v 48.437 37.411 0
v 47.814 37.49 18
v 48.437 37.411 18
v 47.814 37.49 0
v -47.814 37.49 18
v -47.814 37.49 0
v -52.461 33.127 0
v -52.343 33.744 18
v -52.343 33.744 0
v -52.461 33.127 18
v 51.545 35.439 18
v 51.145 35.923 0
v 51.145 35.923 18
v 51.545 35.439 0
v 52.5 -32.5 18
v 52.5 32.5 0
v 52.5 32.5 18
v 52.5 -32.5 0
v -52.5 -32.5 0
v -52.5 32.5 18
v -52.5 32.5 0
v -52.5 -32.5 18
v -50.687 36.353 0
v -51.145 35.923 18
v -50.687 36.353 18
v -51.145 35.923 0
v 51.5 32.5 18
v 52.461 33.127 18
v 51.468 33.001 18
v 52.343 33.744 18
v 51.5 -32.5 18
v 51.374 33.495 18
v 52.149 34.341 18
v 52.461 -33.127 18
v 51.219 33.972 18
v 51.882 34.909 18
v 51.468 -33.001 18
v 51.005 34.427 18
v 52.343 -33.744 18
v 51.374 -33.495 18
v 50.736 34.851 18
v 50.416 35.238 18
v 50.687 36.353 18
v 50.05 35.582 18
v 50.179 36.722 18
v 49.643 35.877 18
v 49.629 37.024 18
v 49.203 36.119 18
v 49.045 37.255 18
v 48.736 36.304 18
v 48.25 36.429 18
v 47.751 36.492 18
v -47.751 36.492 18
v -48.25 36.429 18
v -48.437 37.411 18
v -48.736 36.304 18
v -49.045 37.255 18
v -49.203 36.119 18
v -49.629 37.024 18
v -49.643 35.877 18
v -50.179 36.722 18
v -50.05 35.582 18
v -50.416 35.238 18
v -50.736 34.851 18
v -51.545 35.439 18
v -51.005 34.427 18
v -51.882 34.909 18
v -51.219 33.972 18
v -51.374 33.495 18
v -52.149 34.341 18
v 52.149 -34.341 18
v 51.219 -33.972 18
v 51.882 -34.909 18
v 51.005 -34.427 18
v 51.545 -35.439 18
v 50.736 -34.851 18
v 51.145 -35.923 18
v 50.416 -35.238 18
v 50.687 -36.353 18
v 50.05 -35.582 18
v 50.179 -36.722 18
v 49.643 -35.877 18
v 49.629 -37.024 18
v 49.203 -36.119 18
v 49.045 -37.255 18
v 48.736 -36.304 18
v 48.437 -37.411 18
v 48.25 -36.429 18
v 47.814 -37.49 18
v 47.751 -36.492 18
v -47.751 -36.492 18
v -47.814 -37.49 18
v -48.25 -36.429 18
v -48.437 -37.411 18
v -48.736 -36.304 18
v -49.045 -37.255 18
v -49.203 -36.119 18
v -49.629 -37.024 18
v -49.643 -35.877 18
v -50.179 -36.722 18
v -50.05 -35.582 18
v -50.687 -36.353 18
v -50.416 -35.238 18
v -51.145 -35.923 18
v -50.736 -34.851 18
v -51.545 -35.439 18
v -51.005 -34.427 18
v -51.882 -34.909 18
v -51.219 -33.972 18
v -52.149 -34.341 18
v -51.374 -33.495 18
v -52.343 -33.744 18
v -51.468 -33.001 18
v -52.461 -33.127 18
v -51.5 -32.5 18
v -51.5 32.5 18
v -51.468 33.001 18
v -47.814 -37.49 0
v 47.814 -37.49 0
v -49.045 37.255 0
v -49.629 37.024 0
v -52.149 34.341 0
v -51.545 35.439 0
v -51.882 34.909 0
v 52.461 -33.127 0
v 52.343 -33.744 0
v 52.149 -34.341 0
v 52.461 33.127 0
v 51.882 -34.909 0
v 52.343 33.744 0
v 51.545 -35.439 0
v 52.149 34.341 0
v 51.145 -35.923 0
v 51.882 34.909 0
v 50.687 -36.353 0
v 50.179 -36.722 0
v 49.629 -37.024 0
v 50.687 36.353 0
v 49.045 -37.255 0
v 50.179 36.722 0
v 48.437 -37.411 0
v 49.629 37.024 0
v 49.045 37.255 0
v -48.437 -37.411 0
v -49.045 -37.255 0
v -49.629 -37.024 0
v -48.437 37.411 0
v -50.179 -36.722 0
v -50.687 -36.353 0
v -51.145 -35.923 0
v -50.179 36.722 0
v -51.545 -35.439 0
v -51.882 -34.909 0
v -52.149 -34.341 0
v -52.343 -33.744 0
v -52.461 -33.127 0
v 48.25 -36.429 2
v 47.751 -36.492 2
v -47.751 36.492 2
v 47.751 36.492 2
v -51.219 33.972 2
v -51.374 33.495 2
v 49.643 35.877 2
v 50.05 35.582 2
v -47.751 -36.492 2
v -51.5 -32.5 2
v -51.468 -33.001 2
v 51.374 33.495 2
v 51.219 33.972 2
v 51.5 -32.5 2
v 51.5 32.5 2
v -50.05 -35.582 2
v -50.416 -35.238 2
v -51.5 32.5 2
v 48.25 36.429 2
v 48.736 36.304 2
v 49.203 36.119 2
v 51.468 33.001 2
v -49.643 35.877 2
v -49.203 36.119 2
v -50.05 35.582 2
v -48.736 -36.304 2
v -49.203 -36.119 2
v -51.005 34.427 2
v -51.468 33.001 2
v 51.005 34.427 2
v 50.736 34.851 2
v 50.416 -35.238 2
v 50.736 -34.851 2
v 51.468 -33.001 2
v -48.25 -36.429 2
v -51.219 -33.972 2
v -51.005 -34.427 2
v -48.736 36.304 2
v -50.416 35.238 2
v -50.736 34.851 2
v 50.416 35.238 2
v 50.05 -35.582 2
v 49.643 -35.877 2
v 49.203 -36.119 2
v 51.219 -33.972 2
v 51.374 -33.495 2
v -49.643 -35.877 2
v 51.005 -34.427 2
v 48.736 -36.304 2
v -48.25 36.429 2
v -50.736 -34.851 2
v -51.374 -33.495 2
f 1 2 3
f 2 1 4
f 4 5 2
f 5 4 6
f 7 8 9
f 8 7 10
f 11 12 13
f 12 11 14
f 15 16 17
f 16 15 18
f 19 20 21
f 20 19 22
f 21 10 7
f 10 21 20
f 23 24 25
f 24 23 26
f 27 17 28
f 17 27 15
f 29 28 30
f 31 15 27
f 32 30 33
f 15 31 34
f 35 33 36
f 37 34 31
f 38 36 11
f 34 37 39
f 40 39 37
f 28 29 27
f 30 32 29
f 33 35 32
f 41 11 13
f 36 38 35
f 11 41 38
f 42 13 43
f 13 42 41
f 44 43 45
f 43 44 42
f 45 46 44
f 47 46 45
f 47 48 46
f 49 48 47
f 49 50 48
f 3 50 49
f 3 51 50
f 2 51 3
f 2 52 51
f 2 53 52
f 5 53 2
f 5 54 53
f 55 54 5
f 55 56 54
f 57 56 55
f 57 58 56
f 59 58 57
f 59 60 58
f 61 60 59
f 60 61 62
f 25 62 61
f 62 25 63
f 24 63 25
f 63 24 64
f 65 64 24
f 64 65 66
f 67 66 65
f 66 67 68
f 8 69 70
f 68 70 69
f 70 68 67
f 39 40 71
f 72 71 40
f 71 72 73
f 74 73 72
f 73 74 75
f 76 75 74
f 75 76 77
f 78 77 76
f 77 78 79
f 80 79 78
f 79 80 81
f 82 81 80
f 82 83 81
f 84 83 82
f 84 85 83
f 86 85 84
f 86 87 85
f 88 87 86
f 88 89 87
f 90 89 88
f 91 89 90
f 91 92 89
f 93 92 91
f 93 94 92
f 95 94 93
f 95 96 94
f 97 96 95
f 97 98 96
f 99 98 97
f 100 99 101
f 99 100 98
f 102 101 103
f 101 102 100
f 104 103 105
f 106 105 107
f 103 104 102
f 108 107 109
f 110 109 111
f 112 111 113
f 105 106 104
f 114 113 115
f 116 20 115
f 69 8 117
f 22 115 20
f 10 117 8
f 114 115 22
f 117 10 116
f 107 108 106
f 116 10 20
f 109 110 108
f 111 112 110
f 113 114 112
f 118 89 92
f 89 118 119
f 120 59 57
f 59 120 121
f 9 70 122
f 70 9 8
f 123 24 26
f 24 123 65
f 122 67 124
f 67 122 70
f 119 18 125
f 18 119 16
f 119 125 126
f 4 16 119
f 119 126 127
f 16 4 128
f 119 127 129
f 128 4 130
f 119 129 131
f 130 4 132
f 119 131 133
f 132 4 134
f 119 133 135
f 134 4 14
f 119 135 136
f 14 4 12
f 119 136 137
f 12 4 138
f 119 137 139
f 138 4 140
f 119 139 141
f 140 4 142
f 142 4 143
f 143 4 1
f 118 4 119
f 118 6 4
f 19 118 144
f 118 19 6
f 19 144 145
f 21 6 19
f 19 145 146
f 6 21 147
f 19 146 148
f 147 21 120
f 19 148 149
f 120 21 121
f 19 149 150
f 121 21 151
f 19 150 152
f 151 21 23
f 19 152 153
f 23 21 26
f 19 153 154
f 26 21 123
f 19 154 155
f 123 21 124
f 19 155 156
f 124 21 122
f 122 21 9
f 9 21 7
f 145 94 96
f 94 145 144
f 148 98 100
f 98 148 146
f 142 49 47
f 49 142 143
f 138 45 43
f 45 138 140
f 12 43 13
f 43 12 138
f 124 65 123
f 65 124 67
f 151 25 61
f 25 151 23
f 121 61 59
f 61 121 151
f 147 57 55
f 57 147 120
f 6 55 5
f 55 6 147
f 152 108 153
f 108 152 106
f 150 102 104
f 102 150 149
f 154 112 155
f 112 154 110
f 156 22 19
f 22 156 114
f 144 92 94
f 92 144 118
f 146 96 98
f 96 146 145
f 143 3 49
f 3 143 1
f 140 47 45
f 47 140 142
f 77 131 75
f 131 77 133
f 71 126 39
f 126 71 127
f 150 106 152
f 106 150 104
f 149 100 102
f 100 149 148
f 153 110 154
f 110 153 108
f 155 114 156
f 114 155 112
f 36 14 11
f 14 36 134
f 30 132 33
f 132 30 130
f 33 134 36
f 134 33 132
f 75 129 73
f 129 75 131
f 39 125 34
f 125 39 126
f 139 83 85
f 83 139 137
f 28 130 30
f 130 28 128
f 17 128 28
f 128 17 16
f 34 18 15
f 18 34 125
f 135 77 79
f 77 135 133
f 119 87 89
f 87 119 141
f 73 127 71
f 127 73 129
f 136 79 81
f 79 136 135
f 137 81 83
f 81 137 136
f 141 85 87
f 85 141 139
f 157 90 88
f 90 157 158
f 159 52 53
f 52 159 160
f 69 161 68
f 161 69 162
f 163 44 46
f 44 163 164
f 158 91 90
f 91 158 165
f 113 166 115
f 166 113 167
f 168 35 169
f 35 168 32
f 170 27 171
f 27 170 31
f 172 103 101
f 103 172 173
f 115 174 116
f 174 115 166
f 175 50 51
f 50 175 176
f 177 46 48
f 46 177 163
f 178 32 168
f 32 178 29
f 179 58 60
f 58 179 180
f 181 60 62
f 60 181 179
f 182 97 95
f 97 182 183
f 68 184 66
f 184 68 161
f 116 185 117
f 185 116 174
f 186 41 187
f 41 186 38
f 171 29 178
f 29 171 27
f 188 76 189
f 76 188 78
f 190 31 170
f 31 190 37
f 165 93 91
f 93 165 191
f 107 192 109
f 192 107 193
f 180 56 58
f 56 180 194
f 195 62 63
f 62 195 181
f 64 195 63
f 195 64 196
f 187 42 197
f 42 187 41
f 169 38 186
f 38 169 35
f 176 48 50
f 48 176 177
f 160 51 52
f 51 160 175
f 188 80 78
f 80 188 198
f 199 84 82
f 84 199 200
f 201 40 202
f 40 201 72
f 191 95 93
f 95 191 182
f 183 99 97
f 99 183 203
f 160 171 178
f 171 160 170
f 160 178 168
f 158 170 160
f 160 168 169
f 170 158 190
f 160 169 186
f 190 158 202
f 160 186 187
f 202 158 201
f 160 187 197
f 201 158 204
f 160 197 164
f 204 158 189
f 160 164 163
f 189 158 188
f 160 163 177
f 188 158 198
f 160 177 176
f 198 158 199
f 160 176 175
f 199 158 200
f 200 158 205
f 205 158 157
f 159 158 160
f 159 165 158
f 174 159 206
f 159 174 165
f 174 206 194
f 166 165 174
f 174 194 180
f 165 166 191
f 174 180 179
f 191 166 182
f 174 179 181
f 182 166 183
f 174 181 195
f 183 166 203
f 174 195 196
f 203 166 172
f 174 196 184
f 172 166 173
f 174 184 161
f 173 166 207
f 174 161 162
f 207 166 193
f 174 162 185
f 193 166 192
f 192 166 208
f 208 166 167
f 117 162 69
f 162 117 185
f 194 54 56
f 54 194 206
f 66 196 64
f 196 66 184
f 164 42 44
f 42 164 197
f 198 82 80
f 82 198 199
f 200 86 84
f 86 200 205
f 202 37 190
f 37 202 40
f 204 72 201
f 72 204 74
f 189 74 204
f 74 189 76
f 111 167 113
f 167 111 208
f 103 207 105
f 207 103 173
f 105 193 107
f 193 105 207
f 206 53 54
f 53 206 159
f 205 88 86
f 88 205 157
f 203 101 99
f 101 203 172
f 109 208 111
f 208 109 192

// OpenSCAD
$fn = 50;


difference() {
	union() {
		hull() {
			translate(v = [-47.5000000000, 32.5000000000, 0]) {
				cylinder(h = 18, r = 5);
			}
			translate(v = [47.5000000000, 32.5000000000, 0]) {
				cylinder(h = 18, r = 5);
			}
			translate(v = [-47.5000000000, -32.5000000000, 0]) {
				cylinder(h = 18, r = 5);
			}
			translate(v = [47.5000000000, -32.5000000000, 0]) {
				cylinder(h = 18, r = 5);
			}
		}
	}
	union() {
		translate(v = [0, 0, 2]) {
			hull() {
				translate(v = [-47.5000000000, 32.5000000000, 0]) {
					cylinder(h = 16, r = 4);
				}
				translate(v = [47.5000000000, 32.5000000000, 0]) {
					cylinder(h = 16, r = 4);
				}
				translate(v = [-47.5000000000, -32.5000000000, 0]) {
					cylinder(h = 16, r = 4);
				}
				translate(v = [47.5000000000, -32.5000000000, 0]) {
					cylinder(h = 16, r = 4);
				}
			}
		}
	}
}
